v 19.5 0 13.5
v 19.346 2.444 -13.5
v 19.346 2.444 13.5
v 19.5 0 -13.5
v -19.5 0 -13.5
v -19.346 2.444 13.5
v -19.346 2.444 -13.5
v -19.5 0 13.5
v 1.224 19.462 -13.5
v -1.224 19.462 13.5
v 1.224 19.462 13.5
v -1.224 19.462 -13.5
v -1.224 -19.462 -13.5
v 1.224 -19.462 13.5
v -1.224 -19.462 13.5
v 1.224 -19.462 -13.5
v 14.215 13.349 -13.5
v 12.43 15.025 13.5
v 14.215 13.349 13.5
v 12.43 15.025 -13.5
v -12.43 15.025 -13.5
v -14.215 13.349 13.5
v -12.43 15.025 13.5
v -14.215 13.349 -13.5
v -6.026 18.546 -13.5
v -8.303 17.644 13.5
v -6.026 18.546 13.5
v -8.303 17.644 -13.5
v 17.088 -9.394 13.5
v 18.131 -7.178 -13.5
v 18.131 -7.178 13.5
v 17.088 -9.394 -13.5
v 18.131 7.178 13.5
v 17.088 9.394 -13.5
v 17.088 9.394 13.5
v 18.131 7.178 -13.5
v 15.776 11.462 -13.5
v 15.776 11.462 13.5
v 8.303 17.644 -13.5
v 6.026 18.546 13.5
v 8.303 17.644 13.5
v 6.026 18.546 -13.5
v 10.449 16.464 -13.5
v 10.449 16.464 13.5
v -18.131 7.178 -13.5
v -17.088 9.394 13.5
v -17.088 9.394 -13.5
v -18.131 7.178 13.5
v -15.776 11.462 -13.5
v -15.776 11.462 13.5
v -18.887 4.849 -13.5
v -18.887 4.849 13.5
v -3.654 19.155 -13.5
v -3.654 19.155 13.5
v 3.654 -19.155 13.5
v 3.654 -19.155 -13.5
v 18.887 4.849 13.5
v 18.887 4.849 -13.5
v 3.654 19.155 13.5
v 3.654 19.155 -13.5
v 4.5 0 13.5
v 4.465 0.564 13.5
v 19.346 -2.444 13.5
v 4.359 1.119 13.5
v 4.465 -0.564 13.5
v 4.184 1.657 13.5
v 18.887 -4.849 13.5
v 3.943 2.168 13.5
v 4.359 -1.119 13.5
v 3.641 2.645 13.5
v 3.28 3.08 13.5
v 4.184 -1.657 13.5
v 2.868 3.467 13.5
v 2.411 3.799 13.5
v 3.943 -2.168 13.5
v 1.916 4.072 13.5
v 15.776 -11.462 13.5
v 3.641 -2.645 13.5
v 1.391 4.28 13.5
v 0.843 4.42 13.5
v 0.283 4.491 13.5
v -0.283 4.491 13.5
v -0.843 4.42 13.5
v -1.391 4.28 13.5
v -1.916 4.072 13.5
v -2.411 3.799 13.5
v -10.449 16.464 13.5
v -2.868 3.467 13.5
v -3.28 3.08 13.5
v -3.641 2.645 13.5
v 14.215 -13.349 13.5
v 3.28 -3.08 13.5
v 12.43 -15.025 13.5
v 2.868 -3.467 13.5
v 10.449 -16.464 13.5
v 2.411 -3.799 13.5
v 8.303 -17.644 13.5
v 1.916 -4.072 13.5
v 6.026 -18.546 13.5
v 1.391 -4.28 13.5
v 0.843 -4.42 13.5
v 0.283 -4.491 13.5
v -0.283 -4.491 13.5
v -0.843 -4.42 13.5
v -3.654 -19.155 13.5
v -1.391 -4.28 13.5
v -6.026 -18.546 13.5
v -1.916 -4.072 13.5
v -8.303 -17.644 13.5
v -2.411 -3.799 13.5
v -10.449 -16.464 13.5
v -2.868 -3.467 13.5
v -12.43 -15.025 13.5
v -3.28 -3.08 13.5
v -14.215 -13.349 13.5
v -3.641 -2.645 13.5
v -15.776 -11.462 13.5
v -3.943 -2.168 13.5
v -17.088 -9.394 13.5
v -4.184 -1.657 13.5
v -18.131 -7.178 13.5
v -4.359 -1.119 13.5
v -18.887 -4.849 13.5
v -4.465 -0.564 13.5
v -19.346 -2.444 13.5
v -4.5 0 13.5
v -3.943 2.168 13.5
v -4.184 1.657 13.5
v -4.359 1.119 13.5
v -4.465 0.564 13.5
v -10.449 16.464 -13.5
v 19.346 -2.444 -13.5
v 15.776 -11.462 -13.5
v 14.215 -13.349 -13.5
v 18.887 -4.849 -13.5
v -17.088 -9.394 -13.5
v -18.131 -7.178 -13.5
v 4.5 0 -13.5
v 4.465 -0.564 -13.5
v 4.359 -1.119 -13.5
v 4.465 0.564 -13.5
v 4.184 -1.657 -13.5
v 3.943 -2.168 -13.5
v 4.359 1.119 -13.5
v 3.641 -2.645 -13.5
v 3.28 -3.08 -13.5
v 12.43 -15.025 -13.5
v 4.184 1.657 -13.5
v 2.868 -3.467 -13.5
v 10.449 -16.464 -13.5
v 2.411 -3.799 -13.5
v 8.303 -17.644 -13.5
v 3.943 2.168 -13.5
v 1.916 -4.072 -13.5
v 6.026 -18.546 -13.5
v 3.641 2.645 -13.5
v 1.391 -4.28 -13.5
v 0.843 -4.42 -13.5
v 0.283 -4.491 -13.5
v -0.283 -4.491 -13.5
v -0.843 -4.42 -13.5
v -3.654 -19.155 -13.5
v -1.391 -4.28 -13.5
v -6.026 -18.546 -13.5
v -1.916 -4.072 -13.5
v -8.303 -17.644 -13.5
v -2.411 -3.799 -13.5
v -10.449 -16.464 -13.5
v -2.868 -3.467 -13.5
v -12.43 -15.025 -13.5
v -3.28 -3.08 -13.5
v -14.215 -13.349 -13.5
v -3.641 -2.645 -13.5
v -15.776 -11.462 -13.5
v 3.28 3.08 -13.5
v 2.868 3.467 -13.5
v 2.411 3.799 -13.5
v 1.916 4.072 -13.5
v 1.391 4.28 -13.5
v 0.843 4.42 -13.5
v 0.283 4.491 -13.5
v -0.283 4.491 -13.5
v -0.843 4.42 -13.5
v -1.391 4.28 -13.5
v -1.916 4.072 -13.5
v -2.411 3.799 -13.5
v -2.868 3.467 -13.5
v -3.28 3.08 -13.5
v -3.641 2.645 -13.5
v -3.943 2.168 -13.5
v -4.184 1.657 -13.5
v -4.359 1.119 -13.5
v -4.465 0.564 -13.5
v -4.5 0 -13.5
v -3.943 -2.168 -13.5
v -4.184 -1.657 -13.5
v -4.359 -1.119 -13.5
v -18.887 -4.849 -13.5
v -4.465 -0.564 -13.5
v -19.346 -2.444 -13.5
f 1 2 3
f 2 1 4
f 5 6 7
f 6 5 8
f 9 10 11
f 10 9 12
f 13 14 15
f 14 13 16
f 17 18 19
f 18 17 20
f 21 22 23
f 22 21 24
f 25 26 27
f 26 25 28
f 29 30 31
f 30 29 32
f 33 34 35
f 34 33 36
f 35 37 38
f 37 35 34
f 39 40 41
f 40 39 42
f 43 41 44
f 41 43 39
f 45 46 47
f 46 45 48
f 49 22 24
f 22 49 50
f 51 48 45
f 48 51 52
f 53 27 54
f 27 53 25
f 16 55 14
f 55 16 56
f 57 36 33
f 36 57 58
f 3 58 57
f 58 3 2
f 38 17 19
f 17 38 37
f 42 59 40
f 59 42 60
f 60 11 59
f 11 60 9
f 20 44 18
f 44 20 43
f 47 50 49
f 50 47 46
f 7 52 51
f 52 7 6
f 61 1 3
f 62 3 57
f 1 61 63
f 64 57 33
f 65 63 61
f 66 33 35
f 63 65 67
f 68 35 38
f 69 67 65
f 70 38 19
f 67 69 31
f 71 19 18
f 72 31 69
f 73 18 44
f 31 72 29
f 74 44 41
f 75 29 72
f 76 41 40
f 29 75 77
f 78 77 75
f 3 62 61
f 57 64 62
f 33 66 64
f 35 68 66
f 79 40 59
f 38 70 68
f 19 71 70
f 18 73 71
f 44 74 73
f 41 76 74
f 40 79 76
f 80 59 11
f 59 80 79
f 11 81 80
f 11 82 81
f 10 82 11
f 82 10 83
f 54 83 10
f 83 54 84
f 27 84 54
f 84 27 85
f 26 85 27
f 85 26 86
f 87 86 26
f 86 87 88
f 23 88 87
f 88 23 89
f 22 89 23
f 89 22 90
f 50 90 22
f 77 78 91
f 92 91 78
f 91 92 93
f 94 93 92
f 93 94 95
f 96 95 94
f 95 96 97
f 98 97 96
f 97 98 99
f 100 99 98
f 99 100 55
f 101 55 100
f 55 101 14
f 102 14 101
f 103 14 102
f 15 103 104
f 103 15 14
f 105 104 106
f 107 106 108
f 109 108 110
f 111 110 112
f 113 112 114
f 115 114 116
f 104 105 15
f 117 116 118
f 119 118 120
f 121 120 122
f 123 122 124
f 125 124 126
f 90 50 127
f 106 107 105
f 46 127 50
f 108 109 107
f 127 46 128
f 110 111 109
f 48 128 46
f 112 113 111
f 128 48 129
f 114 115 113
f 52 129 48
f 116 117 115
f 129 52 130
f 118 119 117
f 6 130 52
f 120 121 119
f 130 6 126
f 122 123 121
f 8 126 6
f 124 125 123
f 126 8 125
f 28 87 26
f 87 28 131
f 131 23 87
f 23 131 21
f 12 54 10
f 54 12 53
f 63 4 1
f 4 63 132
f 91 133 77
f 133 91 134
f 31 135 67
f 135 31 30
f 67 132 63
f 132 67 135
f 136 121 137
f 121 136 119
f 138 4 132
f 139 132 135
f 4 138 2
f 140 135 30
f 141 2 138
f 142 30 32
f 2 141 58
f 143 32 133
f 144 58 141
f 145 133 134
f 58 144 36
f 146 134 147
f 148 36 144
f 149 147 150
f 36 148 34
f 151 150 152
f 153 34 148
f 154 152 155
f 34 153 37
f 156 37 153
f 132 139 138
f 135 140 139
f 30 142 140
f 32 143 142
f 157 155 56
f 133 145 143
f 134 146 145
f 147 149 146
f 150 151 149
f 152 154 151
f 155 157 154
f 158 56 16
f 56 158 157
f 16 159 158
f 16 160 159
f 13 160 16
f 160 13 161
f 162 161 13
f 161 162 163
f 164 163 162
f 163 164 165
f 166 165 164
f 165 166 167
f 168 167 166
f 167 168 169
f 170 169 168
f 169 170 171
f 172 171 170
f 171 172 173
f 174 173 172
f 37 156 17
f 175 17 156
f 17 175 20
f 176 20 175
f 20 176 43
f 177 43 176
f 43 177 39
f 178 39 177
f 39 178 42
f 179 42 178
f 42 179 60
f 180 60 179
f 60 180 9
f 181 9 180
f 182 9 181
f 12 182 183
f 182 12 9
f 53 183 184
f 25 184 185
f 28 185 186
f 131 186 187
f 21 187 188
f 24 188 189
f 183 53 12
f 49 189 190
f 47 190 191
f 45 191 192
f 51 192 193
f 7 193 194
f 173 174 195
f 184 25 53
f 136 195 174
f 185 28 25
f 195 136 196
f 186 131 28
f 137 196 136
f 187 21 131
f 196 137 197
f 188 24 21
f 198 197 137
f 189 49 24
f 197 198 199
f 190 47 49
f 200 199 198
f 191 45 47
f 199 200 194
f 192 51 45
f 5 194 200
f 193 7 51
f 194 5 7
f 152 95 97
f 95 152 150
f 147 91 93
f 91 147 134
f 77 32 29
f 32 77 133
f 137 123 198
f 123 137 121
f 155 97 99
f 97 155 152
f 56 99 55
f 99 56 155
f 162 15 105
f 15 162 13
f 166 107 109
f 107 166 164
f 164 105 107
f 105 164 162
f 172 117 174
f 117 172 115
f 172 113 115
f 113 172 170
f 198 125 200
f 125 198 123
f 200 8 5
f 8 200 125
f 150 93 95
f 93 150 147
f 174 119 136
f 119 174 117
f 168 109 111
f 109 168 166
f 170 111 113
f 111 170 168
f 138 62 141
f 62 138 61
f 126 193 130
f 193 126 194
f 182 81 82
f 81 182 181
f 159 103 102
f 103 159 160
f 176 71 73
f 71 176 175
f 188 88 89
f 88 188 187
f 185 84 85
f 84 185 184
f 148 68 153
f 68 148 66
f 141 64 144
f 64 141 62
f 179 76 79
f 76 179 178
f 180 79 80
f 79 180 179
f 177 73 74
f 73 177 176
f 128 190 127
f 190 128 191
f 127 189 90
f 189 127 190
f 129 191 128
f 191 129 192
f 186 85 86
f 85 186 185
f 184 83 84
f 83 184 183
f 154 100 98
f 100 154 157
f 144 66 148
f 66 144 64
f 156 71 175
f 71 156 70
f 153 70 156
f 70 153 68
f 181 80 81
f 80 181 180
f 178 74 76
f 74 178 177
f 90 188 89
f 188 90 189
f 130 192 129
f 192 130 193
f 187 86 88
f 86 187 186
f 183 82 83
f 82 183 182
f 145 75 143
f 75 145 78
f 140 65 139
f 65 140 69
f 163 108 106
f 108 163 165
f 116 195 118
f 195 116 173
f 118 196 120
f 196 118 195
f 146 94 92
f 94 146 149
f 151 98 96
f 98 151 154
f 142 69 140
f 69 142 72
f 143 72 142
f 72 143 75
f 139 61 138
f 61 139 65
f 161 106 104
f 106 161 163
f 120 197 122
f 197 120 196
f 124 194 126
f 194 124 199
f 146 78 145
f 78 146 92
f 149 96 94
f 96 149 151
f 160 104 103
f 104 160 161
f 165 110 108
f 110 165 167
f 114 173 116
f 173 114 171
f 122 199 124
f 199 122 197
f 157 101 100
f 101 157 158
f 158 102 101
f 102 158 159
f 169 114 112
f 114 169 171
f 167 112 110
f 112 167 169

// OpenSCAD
$fn = 50;


difference() {
	union() {
		translate(v = [0, 0, -13.5000000000]) {
			cylinder(h = 27, r = 19.5000000000);
		}
	}
	union() {
		translate(v = [0, 0, -100.0000000000]) {
			cylinder(h = 200, r = 4.5000000000);
		}
	}
}
